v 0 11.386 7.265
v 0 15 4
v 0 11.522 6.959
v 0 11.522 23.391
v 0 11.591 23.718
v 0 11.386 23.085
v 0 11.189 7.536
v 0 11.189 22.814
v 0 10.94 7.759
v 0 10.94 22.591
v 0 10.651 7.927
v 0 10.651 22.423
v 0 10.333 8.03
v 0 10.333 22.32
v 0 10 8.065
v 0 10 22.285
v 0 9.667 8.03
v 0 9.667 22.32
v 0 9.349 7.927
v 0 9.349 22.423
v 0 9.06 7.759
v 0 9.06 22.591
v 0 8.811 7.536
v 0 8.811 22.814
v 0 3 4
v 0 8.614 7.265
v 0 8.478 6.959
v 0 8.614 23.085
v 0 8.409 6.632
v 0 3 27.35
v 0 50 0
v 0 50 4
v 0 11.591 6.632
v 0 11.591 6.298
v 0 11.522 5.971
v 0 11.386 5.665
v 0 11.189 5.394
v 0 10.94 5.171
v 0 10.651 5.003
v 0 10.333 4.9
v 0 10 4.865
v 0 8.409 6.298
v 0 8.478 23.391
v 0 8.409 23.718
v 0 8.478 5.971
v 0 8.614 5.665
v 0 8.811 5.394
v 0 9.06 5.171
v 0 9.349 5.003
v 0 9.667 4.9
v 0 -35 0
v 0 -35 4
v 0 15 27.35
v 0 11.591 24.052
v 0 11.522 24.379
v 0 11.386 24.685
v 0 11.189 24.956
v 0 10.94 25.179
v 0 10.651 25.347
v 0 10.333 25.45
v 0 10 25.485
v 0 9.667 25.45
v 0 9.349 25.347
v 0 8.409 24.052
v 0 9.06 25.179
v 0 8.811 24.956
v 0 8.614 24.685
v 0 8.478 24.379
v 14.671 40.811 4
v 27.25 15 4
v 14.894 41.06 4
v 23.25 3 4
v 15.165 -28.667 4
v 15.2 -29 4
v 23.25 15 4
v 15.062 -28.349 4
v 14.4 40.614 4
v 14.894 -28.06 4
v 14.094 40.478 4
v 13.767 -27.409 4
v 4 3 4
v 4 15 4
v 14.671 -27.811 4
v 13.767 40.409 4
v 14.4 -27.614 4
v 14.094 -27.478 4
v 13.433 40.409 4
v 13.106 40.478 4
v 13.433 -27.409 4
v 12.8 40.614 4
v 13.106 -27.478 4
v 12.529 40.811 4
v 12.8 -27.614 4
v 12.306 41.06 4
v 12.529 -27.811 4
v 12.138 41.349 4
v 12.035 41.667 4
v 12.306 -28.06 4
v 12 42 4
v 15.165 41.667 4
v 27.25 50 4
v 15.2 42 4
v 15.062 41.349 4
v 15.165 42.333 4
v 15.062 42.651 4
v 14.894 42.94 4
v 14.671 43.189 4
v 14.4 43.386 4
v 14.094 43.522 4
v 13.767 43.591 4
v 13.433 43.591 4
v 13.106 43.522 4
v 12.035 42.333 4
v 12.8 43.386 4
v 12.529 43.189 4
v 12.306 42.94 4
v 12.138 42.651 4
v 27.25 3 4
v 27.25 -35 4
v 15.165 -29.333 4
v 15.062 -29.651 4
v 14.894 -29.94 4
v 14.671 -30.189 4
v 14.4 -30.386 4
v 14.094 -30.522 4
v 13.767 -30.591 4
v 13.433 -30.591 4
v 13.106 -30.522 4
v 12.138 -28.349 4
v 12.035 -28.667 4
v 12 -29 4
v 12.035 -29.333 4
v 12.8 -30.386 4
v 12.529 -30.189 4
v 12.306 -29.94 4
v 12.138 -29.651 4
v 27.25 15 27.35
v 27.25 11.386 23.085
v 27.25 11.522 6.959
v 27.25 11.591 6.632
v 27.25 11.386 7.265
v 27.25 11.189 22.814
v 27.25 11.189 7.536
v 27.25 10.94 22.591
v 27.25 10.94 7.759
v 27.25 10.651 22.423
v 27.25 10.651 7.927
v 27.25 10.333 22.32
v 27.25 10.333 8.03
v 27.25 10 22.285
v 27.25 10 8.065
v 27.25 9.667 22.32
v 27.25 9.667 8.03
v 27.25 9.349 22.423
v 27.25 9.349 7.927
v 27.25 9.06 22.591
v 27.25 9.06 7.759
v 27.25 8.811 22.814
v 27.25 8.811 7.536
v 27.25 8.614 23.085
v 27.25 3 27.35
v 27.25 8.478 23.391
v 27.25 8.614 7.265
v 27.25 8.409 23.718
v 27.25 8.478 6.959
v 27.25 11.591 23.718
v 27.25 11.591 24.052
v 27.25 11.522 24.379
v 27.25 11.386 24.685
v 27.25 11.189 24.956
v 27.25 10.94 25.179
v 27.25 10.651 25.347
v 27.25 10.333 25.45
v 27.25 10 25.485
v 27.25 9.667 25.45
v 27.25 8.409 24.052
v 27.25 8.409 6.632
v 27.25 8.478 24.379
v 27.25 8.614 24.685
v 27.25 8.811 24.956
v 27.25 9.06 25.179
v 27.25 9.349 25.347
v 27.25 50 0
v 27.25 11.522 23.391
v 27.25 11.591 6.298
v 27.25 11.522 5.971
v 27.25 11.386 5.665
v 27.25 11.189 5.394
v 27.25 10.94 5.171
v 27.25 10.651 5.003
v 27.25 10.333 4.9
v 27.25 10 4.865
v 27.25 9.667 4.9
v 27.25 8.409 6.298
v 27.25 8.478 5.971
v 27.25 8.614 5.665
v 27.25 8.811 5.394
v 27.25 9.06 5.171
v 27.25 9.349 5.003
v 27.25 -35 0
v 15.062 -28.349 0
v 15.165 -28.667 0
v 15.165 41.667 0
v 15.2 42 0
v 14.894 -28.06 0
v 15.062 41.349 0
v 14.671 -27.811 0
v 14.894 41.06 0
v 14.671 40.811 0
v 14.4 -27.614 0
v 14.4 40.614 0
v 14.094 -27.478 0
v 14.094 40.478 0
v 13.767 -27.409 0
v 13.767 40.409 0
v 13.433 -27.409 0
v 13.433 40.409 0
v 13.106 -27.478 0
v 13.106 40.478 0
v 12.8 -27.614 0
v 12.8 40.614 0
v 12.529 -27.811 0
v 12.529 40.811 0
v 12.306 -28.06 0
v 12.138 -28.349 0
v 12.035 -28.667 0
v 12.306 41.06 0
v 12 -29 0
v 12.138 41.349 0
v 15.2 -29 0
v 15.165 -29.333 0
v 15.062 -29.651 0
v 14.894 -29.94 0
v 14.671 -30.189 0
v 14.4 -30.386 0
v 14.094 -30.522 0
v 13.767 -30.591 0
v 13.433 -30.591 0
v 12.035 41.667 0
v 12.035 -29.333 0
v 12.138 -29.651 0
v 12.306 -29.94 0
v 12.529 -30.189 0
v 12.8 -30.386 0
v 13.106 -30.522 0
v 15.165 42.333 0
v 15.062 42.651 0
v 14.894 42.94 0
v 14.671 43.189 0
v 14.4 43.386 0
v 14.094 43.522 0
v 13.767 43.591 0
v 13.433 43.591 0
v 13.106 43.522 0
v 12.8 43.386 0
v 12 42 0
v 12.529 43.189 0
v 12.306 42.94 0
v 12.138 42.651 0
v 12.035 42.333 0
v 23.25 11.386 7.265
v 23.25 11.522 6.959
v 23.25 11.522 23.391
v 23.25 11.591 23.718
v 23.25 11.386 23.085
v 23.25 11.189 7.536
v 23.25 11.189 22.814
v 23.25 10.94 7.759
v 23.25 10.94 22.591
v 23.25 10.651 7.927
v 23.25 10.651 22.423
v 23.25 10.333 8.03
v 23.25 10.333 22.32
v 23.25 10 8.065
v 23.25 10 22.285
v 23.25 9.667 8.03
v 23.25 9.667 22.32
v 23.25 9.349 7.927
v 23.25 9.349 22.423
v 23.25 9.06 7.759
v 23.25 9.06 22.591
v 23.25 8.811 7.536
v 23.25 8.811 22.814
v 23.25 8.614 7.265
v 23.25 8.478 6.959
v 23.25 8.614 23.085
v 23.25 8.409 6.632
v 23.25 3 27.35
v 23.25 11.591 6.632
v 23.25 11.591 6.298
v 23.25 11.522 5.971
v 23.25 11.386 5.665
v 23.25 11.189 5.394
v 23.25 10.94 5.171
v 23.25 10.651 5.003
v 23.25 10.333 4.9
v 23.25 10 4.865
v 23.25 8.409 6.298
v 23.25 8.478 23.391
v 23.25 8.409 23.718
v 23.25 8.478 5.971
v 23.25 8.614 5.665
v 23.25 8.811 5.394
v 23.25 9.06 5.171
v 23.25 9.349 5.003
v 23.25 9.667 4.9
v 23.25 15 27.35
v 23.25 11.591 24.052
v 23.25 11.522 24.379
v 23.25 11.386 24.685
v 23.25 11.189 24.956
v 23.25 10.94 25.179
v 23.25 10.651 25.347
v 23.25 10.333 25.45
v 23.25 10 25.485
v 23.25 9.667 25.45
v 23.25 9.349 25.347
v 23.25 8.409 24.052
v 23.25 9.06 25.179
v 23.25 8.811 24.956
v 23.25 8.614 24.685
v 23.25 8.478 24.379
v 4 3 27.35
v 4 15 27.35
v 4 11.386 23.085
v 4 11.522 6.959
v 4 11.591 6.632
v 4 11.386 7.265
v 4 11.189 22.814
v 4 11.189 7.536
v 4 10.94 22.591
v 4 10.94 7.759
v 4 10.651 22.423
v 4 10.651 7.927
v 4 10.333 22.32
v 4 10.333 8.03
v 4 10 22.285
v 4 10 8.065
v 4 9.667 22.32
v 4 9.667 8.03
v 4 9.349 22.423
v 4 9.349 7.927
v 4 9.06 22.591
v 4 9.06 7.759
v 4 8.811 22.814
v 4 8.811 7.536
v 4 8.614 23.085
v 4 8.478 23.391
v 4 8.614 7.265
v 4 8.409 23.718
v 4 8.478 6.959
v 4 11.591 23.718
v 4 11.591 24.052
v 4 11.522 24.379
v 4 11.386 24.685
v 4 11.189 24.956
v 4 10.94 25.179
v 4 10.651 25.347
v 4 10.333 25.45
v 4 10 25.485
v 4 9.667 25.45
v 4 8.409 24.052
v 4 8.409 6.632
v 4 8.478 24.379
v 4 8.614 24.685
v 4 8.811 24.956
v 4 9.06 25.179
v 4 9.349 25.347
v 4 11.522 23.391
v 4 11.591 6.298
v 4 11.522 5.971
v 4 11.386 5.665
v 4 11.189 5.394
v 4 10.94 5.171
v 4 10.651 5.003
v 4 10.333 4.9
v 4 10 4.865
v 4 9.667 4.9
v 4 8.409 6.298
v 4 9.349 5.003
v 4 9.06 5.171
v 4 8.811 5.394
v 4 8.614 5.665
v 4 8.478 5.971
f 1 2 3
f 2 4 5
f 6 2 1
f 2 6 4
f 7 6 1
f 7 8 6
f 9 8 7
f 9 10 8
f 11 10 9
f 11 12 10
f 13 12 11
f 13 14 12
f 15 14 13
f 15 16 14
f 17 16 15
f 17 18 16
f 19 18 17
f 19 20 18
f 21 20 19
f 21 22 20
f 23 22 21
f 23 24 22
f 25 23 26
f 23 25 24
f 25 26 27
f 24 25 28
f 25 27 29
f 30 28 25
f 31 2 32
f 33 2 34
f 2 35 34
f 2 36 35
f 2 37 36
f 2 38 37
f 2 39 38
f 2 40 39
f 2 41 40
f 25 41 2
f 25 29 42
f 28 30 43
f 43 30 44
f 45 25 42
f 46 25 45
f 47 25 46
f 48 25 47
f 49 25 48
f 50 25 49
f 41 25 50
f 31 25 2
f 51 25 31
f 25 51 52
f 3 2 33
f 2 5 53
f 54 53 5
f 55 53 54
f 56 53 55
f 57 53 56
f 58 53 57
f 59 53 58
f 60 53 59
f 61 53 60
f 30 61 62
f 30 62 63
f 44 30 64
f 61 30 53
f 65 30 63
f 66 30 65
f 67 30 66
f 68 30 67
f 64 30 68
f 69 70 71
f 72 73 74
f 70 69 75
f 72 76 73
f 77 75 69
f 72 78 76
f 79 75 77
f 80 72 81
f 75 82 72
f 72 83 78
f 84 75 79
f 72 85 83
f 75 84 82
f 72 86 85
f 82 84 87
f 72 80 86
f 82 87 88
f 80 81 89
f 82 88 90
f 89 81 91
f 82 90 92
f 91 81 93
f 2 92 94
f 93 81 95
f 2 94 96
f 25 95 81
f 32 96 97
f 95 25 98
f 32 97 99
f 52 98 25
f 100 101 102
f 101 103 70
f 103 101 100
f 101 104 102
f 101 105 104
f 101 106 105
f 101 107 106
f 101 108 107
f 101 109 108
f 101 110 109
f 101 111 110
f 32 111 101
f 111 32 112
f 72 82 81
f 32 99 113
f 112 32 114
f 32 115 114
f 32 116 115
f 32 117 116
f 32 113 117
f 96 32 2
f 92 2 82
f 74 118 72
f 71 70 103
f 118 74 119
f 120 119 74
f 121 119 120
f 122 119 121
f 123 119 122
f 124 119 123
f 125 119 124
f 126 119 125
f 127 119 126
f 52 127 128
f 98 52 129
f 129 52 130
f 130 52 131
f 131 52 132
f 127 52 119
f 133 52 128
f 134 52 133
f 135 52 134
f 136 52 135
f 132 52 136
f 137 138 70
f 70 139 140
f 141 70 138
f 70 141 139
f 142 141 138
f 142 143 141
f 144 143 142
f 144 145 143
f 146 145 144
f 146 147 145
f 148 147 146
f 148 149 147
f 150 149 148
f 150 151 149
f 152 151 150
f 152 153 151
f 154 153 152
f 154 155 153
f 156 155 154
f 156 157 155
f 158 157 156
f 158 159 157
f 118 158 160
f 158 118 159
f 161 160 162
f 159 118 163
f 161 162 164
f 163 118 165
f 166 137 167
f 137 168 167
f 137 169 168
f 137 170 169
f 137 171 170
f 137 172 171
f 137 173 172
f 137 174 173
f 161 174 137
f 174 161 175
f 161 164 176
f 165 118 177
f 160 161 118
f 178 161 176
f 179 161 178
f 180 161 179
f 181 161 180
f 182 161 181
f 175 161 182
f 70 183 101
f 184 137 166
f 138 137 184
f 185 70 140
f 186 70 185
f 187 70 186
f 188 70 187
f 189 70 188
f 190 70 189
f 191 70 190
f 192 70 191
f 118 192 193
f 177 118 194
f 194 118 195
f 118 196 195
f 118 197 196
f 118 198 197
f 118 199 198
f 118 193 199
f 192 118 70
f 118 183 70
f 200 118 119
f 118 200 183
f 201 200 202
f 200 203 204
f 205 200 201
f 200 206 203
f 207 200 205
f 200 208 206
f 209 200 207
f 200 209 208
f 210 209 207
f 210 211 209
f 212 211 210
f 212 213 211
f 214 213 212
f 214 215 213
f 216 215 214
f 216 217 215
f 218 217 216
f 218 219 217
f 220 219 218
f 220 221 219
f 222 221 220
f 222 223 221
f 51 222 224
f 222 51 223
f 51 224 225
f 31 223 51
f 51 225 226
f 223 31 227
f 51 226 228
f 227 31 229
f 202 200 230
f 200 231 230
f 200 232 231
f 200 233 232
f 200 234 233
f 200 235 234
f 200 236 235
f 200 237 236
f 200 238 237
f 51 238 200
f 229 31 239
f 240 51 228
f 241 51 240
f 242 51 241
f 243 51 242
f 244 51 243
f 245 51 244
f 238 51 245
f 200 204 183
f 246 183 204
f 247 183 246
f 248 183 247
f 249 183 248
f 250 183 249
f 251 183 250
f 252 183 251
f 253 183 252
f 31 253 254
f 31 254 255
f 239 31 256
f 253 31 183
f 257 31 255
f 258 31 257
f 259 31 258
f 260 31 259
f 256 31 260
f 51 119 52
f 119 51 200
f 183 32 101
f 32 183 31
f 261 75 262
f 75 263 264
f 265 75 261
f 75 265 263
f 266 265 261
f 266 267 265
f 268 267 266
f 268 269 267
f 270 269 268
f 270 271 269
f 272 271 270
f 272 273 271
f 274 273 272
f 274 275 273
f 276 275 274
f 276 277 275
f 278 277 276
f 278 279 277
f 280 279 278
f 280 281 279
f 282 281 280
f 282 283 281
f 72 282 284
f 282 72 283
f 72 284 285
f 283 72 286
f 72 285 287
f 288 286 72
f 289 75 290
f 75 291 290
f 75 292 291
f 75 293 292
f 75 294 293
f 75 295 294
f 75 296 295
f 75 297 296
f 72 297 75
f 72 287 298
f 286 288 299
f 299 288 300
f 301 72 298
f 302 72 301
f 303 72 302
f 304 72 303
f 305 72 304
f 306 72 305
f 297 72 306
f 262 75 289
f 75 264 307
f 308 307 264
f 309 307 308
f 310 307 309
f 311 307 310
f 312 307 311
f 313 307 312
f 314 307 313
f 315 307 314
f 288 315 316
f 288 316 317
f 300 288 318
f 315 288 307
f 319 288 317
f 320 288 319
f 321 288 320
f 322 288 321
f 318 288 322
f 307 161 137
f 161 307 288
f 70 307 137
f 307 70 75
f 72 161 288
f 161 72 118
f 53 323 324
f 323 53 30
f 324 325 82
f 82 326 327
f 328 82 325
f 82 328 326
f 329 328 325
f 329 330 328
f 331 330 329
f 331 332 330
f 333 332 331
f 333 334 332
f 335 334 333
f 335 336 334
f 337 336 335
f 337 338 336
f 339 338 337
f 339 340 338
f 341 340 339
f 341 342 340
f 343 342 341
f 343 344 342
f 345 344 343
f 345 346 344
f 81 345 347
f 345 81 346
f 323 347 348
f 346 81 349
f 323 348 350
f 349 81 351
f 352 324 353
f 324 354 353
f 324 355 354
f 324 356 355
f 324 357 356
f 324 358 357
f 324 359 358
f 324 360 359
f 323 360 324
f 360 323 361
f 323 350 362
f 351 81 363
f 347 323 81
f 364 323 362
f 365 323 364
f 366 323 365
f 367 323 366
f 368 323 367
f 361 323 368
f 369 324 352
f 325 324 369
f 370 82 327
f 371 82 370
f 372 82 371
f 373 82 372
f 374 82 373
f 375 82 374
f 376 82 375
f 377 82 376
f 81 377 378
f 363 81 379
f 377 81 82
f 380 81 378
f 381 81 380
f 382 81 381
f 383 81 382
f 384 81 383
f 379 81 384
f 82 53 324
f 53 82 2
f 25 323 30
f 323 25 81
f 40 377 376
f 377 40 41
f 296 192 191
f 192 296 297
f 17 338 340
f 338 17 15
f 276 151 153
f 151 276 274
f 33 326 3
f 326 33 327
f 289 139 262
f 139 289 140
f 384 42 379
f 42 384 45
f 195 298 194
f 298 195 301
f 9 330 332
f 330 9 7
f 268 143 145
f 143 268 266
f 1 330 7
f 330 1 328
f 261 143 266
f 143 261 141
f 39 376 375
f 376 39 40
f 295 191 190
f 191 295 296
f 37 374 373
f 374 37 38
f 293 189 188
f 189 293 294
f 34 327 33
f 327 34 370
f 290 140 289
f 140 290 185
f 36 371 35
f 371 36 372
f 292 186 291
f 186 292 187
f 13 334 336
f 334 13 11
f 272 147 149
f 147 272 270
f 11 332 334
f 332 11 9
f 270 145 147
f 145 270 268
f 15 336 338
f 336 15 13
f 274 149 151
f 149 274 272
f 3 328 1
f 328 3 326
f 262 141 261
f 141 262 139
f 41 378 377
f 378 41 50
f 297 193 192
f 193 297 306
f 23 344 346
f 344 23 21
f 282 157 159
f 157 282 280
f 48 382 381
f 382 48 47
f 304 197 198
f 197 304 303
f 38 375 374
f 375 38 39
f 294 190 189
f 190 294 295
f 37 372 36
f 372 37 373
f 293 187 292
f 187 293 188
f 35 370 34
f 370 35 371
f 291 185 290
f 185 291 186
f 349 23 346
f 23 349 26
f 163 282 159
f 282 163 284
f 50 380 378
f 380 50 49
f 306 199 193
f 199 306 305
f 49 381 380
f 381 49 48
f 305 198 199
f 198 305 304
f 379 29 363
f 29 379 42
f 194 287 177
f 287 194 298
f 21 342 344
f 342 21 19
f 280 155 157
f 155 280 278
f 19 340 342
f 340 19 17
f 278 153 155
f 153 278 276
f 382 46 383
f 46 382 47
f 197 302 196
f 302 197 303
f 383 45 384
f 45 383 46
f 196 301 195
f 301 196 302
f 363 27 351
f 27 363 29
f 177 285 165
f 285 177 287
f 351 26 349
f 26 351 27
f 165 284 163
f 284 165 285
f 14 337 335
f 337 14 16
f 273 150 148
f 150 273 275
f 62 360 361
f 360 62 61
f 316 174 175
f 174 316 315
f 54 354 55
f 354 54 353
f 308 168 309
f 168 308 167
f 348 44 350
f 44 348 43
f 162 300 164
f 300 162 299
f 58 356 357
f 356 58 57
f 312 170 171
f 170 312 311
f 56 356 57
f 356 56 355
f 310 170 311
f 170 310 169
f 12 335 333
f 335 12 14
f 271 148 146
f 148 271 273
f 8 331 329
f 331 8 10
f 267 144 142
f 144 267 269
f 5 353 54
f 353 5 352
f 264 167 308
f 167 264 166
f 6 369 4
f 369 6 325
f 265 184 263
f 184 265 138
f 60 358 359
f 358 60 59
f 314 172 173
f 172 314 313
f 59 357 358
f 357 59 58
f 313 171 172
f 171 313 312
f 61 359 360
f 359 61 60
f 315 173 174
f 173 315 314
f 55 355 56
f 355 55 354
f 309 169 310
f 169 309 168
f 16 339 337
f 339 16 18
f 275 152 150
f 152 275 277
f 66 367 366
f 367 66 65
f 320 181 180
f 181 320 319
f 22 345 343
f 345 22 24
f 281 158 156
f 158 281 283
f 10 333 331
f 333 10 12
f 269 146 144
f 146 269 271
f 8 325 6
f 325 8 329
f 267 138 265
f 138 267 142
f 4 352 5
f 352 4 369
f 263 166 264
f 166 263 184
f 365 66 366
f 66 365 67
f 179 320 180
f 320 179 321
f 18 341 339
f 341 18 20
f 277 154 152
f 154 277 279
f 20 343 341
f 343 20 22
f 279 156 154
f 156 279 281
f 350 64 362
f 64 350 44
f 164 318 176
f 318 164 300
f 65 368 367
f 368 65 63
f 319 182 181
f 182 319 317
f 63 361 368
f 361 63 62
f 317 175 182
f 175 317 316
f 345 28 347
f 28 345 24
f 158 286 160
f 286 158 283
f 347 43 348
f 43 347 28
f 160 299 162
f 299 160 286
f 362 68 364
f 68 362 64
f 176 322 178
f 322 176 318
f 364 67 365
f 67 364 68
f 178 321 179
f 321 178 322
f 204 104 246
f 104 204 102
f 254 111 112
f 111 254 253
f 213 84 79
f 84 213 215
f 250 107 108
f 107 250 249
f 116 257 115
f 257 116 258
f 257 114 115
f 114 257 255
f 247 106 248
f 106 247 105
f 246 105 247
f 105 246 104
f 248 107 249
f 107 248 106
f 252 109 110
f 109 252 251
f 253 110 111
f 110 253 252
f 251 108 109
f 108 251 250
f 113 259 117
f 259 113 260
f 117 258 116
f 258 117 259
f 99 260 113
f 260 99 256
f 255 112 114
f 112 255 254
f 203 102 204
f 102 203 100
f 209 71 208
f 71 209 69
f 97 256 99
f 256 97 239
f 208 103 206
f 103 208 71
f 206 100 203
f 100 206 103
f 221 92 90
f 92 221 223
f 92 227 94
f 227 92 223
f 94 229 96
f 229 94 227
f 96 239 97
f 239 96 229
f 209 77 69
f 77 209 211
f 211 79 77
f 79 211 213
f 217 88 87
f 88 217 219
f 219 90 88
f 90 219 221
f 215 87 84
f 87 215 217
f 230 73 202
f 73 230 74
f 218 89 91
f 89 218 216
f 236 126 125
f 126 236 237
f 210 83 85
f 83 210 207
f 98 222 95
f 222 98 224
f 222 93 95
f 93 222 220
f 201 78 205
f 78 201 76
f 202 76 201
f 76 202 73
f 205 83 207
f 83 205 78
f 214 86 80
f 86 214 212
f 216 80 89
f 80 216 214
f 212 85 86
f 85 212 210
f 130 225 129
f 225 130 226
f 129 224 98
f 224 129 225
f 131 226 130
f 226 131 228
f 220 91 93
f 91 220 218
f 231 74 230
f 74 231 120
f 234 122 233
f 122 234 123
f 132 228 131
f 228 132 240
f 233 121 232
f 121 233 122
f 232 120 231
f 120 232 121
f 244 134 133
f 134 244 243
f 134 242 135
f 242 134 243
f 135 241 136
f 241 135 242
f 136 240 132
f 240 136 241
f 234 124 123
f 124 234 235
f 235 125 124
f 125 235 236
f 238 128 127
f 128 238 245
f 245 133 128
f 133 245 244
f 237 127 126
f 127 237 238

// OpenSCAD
$fn=30;

difference(){

union(){
translate([0,-35,0])cube([27.25,85,4]);
translate([23.25,3,3])cube([4,12,24.35]);
translate([0,3,3])cube([4,12,24.35]);

}

translate([0,10,6.465])rotate([0,90,0])
cylinder(d=3.2,h=100,center=true,$fn=30);
translate([0,10,23.885])rotate([0,90,0])
cylinder(d=3.2,h=100,center=true,$fn=30);
translate([13.6,42,0])cylinder(d=3.2,h=5);
translate([13.6,-29,0])cylinder(d=3.2,h=5);
}
